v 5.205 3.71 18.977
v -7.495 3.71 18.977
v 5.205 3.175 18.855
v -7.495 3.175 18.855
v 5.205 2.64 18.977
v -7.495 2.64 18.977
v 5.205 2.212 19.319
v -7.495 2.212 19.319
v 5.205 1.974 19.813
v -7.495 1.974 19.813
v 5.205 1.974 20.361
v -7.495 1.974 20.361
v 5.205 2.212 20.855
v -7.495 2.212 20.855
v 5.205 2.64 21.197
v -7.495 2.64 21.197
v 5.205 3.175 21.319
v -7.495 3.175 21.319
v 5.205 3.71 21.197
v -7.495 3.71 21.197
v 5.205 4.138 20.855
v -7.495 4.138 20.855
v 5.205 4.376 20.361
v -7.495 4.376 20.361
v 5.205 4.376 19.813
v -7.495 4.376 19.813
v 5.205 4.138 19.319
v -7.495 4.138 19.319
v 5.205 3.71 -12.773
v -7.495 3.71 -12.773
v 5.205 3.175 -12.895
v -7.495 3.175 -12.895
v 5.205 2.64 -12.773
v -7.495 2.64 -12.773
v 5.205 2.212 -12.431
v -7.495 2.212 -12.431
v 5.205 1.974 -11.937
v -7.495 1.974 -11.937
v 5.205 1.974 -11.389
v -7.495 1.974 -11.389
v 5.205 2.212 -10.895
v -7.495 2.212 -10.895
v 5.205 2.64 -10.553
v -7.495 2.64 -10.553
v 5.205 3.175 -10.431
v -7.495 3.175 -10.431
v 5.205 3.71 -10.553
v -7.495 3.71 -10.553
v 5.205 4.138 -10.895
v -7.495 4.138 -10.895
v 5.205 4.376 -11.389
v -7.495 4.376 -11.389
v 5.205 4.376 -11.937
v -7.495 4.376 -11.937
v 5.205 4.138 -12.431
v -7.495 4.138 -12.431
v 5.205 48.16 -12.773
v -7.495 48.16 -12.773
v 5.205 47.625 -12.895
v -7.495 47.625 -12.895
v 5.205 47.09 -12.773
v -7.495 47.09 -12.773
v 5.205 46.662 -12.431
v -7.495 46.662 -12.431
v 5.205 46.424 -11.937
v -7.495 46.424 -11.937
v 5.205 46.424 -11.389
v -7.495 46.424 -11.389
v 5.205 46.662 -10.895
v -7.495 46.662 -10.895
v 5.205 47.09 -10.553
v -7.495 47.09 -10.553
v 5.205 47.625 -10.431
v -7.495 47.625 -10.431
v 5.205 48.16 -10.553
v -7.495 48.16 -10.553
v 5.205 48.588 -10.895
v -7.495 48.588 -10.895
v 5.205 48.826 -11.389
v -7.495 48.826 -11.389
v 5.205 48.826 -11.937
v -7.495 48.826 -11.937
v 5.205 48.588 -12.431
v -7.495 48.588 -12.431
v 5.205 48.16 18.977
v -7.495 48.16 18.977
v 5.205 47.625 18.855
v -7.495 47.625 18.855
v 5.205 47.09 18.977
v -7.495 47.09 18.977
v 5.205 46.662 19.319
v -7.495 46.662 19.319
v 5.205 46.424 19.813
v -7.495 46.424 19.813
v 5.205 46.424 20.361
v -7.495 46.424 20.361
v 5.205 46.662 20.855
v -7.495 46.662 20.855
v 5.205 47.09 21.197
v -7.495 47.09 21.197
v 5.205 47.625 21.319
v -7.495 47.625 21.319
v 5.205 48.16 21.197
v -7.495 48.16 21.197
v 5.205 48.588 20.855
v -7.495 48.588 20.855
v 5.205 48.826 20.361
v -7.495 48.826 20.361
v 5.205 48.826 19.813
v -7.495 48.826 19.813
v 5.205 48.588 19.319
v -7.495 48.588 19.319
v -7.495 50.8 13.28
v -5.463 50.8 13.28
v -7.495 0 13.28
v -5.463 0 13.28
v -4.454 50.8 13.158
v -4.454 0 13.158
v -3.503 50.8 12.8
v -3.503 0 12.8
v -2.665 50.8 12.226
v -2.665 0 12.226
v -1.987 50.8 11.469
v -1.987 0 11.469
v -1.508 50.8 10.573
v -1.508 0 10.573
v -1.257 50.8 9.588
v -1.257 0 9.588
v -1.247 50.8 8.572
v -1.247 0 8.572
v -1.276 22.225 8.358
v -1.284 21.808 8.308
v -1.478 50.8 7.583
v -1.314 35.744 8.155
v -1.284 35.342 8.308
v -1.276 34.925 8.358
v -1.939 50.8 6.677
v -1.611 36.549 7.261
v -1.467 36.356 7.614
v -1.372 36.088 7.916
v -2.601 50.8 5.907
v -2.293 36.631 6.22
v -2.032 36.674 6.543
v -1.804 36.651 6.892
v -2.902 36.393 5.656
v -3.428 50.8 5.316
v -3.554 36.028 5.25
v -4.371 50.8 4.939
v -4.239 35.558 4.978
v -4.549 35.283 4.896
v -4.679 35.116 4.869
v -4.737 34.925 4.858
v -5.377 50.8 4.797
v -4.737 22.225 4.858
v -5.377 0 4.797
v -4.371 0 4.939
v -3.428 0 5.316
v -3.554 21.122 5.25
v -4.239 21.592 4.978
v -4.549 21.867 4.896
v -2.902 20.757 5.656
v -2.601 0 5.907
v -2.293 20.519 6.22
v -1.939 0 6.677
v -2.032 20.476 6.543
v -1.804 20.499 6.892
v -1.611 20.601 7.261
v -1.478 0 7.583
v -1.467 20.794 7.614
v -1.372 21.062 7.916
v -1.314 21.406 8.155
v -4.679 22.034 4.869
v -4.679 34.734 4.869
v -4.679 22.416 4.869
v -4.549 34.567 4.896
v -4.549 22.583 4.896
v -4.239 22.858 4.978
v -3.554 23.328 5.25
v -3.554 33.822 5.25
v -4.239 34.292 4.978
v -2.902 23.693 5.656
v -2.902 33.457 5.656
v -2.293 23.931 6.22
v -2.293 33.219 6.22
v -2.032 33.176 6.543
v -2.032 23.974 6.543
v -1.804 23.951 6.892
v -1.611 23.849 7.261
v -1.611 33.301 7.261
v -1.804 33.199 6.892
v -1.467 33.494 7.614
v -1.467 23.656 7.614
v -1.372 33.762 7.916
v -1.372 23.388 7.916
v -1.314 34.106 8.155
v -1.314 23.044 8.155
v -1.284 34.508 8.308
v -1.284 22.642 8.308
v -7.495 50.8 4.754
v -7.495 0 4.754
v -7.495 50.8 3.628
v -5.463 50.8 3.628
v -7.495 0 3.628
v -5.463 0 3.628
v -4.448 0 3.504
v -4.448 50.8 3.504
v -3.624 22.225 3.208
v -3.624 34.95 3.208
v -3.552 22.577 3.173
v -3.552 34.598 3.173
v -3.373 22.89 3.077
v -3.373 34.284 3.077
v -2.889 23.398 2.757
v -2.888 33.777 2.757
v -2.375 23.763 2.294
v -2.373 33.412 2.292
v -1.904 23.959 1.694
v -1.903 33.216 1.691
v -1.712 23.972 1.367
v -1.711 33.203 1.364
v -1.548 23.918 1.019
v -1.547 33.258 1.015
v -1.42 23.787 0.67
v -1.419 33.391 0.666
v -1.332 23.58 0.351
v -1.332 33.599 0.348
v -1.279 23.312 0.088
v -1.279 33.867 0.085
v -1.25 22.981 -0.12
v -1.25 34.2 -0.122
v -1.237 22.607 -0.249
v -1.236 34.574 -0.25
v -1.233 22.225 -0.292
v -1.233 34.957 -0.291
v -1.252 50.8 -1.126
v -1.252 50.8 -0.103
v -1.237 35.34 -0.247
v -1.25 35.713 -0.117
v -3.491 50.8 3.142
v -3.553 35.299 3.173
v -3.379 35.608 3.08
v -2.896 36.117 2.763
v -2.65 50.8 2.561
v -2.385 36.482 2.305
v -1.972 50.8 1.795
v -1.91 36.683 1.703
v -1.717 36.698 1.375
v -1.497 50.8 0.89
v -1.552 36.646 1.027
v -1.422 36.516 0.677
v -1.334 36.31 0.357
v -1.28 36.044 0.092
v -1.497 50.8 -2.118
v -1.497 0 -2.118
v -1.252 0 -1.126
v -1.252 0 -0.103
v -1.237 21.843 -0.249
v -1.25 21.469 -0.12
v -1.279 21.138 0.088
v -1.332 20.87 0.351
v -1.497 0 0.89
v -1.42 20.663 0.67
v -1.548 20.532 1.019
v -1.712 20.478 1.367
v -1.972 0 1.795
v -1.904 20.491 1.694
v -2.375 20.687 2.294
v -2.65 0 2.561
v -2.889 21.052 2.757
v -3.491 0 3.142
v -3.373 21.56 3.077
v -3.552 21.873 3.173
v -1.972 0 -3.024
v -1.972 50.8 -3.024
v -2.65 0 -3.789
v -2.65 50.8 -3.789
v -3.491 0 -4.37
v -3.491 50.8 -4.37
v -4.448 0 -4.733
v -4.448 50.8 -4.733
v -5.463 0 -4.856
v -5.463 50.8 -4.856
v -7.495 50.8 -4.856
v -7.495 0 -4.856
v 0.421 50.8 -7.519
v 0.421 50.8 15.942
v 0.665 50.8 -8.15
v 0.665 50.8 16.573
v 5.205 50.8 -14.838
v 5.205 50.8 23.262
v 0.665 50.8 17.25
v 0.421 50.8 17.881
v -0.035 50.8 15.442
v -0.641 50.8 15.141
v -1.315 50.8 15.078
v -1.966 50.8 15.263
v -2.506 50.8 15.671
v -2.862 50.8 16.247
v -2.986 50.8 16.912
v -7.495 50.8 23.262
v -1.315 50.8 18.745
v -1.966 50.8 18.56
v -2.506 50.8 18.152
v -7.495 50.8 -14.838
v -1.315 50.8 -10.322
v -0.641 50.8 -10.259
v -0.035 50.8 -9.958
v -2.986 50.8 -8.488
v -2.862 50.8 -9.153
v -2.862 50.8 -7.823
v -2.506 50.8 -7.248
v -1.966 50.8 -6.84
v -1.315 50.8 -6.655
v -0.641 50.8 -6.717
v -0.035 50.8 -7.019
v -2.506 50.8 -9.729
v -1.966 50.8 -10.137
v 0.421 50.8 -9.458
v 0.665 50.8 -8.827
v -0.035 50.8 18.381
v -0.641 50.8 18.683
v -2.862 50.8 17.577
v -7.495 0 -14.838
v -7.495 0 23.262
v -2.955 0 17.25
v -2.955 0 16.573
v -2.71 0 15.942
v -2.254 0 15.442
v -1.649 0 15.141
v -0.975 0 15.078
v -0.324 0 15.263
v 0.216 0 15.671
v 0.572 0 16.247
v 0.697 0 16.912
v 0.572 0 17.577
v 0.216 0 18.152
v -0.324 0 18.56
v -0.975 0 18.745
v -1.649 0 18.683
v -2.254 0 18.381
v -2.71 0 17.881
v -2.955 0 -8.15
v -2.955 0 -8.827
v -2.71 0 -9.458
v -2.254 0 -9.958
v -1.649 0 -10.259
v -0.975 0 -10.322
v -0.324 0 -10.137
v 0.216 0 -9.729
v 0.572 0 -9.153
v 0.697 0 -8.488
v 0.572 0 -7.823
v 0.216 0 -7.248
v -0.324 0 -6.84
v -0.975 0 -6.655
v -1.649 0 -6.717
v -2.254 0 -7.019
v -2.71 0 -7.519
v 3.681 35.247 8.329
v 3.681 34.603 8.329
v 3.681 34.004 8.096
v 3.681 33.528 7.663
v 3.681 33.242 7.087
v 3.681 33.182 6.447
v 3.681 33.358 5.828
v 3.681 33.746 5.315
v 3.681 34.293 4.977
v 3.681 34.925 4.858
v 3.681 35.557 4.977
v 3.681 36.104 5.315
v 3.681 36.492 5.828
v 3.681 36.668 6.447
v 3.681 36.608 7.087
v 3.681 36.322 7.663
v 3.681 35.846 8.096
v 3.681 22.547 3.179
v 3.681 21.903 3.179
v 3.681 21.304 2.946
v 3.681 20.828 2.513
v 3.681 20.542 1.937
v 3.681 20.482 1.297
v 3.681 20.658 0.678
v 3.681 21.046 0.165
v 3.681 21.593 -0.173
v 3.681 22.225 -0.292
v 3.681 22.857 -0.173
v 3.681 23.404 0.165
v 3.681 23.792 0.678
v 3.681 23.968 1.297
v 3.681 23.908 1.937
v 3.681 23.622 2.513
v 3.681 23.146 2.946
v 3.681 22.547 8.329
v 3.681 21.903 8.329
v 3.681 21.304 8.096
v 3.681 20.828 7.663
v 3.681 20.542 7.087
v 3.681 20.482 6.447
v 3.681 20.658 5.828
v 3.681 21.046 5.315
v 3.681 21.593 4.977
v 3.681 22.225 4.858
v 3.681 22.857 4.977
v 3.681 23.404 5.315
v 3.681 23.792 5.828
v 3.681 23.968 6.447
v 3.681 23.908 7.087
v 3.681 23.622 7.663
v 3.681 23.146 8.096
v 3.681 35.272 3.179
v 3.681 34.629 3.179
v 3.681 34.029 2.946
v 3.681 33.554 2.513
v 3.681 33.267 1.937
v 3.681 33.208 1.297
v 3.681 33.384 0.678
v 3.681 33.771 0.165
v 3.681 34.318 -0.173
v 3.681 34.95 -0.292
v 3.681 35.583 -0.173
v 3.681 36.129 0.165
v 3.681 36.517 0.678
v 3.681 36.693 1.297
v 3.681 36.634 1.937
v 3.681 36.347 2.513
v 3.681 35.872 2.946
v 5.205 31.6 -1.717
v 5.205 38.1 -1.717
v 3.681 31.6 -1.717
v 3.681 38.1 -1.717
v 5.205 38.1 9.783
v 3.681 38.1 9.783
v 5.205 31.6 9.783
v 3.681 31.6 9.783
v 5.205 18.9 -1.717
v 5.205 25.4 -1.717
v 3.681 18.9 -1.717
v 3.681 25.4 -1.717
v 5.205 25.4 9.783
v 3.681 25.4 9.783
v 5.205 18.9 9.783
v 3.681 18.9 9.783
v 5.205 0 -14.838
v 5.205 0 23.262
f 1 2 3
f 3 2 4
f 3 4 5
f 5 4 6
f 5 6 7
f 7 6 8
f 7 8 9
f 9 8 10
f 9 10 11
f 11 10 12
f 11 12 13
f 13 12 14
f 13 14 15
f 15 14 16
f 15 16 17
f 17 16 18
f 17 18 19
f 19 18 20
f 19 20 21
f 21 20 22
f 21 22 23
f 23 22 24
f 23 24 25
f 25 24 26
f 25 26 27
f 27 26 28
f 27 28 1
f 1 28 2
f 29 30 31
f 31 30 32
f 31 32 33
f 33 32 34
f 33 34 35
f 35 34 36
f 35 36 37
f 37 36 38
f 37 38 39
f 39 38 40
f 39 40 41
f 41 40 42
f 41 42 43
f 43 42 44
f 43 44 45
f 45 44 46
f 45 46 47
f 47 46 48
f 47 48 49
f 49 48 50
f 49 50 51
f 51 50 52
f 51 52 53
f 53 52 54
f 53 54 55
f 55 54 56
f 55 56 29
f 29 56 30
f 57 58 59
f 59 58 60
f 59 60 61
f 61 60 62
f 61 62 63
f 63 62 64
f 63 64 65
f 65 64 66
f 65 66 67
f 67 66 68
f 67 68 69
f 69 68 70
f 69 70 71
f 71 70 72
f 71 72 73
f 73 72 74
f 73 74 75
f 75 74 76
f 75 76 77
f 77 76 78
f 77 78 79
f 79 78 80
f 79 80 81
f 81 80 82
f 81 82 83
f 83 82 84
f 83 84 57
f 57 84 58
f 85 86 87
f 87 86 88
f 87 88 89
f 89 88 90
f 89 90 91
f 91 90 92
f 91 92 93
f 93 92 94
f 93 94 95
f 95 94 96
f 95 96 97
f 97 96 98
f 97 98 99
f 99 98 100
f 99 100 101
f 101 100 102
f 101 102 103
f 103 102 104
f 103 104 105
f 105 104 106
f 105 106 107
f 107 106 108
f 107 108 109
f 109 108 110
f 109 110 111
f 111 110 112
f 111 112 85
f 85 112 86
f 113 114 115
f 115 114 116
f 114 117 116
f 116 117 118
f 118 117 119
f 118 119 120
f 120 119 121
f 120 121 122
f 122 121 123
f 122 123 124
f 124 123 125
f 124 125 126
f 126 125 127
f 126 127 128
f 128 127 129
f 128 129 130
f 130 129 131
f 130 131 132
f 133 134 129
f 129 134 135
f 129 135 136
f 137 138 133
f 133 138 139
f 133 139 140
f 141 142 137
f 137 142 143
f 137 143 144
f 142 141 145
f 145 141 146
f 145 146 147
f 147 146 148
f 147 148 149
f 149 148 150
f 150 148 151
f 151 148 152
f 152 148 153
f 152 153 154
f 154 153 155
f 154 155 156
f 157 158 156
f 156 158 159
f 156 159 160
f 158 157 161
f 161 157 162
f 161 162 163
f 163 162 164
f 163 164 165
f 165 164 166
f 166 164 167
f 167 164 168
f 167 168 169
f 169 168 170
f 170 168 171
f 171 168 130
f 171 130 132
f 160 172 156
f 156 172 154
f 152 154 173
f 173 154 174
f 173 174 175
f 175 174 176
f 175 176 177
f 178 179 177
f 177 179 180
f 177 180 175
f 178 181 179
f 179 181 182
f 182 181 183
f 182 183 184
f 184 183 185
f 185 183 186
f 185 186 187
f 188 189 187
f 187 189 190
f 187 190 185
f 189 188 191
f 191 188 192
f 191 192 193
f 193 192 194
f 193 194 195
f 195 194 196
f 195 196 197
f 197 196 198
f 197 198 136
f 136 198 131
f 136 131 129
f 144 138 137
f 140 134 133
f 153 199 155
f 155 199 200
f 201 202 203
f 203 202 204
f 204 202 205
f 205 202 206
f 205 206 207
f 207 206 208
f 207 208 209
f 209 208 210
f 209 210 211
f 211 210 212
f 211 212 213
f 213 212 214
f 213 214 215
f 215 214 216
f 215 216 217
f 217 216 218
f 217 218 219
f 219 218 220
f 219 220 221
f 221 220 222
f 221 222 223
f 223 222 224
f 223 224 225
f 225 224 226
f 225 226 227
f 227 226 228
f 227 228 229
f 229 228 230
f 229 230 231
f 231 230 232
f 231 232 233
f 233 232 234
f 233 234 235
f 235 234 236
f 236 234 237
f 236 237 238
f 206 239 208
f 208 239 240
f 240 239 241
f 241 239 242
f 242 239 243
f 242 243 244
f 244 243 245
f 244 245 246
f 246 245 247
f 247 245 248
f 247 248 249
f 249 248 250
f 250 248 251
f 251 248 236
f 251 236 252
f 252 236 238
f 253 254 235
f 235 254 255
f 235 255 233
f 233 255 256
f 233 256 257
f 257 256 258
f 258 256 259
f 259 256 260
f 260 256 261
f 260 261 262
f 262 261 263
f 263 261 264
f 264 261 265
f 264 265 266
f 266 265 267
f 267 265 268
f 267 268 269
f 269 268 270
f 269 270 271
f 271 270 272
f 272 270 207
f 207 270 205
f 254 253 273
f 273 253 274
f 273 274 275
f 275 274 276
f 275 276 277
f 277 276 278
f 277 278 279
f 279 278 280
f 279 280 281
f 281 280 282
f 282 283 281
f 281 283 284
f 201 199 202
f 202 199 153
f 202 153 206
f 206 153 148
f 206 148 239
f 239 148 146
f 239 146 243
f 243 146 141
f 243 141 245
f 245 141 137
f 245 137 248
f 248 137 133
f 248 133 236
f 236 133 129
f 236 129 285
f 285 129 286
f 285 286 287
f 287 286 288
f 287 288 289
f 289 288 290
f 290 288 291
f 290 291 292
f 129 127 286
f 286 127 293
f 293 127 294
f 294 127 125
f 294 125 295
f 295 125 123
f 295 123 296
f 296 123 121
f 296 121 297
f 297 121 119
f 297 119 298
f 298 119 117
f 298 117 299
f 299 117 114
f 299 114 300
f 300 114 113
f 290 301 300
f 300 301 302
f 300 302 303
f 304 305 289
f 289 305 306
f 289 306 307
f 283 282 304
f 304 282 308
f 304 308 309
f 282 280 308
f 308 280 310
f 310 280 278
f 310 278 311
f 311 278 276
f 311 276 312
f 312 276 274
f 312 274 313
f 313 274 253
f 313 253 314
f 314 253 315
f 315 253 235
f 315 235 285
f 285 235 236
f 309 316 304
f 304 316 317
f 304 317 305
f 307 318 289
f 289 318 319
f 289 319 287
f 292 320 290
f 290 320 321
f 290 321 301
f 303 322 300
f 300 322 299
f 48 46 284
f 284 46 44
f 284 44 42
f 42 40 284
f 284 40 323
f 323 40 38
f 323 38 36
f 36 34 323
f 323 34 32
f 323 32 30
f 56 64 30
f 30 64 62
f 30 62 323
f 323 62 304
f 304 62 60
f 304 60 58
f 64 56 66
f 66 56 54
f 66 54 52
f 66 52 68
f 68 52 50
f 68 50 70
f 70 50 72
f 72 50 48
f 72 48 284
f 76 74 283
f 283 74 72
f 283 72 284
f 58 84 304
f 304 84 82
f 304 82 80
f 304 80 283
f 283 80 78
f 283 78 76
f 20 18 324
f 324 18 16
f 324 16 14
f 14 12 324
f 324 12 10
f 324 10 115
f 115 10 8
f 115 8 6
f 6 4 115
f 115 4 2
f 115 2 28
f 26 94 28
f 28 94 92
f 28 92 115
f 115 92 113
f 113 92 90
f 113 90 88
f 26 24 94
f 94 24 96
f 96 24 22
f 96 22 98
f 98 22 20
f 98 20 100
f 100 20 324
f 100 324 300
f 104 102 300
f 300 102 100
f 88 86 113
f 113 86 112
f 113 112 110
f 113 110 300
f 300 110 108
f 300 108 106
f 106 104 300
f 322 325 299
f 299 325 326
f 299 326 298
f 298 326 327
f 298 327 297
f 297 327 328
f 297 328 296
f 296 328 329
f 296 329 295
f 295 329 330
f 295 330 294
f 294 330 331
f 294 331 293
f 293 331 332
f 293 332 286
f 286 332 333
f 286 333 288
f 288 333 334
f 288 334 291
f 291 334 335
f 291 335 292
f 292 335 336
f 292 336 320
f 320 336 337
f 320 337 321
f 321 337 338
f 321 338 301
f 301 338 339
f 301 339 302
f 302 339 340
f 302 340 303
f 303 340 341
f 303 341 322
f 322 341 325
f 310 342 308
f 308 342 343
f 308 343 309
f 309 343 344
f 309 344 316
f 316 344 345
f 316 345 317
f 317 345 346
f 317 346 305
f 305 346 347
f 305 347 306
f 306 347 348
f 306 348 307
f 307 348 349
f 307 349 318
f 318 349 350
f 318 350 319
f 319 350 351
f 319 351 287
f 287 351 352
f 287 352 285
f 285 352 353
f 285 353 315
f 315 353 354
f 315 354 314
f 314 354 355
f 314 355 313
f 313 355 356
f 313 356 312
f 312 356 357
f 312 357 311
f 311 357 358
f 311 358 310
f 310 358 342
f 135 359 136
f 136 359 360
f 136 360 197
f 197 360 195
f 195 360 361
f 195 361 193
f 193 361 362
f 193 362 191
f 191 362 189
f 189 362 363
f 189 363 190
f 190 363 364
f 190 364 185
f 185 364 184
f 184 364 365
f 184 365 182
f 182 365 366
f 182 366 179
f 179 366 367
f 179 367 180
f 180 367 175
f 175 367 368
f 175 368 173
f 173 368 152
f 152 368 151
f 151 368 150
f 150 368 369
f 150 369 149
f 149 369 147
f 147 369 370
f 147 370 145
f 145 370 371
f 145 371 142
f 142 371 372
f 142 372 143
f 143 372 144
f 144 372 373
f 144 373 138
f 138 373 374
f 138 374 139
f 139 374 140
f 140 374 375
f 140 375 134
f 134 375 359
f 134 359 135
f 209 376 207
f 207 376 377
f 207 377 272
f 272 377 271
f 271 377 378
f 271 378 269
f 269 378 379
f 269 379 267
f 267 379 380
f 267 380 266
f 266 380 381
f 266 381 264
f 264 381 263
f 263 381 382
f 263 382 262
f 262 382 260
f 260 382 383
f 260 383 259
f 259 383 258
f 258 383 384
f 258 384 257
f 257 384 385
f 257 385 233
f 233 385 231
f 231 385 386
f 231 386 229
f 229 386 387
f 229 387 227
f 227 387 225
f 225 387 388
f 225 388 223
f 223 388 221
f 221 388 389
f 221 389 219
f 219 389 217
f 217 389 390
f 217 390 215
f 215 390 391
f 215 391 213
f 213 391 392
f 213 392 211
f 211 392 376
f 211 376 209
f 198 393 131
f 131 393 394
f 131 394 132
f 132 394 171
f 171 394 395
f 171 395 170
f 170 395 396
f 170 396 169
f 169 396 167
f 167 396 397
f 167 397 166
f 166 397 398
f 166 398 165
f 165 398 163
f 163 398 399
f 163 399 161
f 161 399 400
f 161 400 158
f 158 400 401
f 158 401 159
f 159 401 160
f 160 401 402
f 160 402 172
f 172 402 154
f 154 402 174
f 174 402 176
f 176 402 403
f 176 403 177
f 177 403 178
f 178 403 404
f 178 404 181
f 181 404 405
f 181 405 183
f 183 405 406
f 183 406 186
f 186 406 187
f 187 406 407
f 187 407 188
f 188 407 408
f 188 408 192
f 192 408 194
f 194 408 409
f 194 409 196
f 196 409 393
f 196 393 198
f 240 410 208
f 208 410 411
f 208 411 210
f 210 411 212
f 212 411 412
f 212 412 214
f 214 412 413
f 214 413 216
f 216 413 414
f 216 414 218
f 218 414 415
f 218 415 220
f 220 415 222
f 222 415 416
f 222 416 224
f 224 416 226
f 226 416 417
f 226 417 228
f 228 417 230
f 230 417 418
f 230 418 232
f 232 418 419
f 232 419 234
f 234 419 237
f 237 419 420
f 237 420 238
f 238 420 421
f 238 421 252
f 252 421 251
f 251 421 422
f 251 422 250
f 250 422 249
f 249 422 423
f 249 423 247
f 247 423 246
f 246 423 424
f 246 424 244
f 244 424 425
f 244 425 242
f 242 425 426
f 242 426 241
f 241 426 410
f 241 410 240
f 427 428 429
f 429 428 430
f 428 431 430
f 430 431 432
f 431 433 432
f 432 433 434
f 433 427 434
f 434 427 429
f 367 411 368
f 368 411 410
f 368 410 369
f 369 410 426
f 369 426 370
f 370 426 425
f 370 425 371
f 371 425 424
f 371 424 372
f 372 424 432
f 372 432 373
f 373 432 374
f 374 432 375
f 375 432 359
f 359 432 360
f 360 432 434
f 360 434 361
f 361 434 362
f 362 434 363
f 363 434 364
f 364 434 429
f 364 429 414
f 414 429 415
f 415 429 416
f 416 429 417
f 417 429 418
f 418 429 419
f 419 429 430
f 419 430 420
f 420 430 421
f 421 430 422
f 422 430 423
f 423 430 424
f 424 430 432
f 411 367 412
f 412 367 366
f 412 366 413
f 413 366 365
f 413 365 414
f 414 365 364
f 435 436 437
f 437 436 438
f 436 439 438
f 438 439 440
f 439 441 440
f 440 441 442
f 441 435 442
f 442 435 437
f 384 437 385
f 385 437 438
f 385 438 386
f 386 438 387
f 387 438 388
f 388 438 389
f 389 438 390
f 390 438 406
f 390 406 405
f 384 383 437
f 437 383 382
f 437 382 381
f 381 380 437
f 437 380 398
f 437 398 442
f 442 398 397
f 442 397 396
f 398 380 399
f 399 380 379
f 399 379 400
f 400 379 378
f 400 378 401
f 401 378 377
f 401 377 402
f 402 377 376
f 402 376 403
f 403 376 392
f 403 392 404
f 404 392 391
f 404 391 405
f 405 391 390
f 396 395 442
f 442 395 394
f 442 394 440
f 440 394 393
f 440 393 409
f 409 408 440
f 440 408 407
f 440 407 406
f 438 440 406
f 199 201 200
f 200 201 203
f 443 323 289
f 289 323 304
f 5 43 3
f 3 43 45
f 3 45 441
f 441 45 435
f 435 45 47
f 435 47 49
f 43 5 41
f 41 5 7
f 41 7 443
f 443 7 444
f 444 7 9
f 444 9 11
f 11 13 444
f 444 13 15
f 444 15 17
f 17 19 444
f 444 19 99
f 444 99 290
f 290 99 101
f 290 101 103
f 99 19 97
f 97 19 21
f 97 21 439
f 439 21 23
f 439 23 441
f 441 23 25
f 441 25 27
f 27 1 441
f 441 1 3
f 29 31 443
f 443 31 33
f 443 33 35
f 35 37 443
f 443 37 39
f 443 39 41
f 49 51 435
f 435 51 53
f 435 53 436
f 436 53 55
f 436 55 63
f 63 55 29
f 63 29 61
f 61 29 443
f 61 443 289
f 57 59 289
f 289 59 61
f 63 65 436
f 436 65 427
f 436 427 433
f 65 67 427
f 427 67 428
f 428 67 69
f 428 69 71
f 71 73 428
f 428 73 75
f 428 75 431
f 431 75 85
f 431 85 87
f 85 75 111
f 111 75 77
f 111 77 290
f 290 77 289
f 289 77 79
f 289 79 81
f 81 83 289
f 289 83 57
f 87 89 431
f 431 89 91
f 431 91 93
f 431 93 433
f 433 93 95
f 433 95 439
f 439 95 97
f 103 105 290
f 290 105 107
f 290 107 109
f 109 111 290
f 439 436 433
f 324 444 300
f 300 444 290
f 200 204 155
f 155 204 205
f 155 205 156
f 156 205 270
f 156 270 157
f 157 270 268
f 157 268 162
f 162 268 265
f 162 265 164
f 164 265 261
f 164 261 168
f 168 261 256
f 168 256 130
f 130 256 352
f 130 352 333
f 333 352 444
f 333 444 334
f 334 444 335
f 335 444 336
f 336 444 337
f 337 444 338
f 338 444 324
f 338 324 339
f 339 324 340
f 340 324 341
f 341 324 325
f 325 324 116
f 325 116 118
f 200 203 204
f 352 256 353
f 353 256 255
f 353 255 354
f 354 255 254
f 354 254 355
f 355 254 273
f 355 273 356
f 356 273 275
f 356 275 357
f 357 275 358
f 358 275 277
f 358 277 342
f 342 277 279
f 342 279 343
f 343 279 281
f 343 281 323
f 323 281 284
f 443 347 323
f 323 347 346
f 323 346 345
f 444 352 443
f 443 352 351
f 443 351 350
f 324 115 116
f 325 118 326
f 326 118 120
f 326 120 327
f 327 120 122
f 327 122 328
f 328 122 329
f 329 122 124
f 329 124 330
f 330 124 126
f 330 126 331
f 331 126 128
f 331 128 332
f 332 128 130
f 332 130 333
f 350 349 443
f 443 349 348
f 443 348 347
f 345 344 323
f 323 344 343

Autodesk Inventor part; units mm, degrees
ref_plane "YZ Plane" through (0, 0, 0) normal (1, 0, 0) x (0, 1, 0)
ref_plane "XZ Plane" through (0, 0, 0) normal (0, 1, 0) x (-1, 0, 0)
ref_plane "XY Plane" through (0, 0, 0) normal (0, 0, 1) x (1, 0, 0)
sketch "Sketch1" plane through (0, 0, 0) normal (0, 1, 0) x (-1, 0, 0)
  line L0 (7.4947, 23.2617) -> (-5.2053, 23.2617)
  line L1 (-5.2053, 23.2617) -> (-5.2053, -14.8383)
  line L2 (-5.2053, -14.8383) -> (7.4947, -14.8383)
  line L3 (7.4947, -14.8383) -> (7.4947, 23.2617)
  point P0 (0, 0)
  dimension "d0" = 38.1
  dimension "d1" = 12.7
extrude "Extrusion1" add sketch "Sketch1" along normal blind 50.8
sketch "Sketch2" plane through (5.2053, 0, 23.2617) normal (1, 0, 0) x (0, 0, -1)
  line L0 (13.4782, 31.6) -> (24.9782, 31.6)
  line L1 (24.9782, 31.6) -> (24.9782, 38.1)
  line L2 (24.9782, 38.1) -> (13.4782, 38.1)
  line L3 (13.4782, 38.1) -> (13.4782, 31.6)
  line L4 (13.4782, 18.9) -> (24.9782, 18.9)
  line L5 (24.9782, 18.9) -> (24.9782, 25.4)
  line L6 (24.9782, 25.4) -> (13.4782, 25.4)
  line L7 (13.4782, 25.4) -> (13.4782, 18.9)
  line L8 (0, 0) -> (0, 50.8) projected
  line L9 (0, 0) -> (38.1, 0) projected
  line L10 (19.05, 56.7236) -> (19.05, -6.6913)
  point P0 (23.2617, 0)
  dimension "d4" = 11.5
  dimension "d5" = 0
  dimension "d6" = 0
  dimension "d8" = 25.4
  dimension "d9" = 12.7
  dimension "d10" = 6.5
  dimension "d11" = 6.5
  dimension "d47" = 19.05
extrude "Extrusion2" cut sketch "Sketch2" against normal blind 1.524
sketch "Sketch3" plane through (3.6813, 0, 23.2617) normal (1, 0, 0) x (0, 0, -1)
  circle A0 centre (21.8032, 22.225) radius 1.75
  circle A1 centre (16.6532, 22.225) radius 1.75
  line L0 (13.4782, 25.4) -> (24.9782, 25.4) projected
  line L1 (13.4782, 18.9) -> (13.4782, 25.4) projected
  line L2 (24.9782, 25.4) -> (24.9782, 18.9) projected
  circle A2 centre (16.6532, 34.925) radius 1.75
  circle A3 centre (21.8032, 34.9504) radius 1.75
  line L3 (13.4782, 38.1) -> (24.9782, 38.1) projected
  point P0 (23.2617, 0)
  dimension "d15" = 3.5
  dimension "d16" = 3.5
  dimension "d17" = 3.175
  dimension "d18" = 3.175
  dimension "d19" = 3.175
  dimension "d20" = 3.175
  dimension "d21" = 3.5
  dimension "d22" = 3.5
  dimension "d23" = 3.175
  dimension "d24" = 3.1496
  dimension "d48" = 0
  dimension "d49" = 0
extrude "Extrusion3" cut sketch "Sketch3" against normal blind 41.3385
sketch "Sketch4" plane through (0, 0, 0) normal (0, -1, 0) x (1, 0, 0)
  line L0 (5.2053, -14.8383) -> (-7.4947, -14.8383) projected
  line L1 (5.2053, 23.2617) -> (5.2053, -14.8383) projected
  point P0 (0, 0)
  point P1 (-1.1447, 16.9117)
  point P2 (-1.1447, -8.4883)
  dimension "d27" = 25.4
  dimension "d28" = 6.35
  dimension "d29" = 6.35
  dimension "d30" = 0
hole "Hole1" at (-1.1447, 0, 16.9117) at (-1.1447, 0, -8.4883) direction (0, 1, 0) diameter 3.683 end through all thread size "10-24 UNC" class "2B" standard "ANSI Unified Screw Threads"
sketch "Sketch5" plane through (0, 0, 0) normal (0, -1, 0) x (1, 0, 0)
  arc A0 (-5.3775, 4.7968) -> (-5.4627, 13.2795) centre (-5.4627, 9.0377) ccw
  arc A1 (-5.4627, -4.8561) -> (-5.4627, 3.6275) centre (-5.4627, -0.6143) ccw
  line L0 (-7.4947, -14.8383) -> (-7.4947, 23.2617) projected
  line L1 (-7.4947, 23.2617) -> (5.2053, 23.2617) projected
  line L2 (5.2053, -14.8383) -> (-7.4947, -14.8383) projected
  line L3 (-7.4947, -4.8561) -> (-5.4627, -4.8561)
  line L4 (-7.4947, 3.6275) -> (-5.4627, 3.6275)
  line L5 (-7.4947, 4.7542) -> (-5.3775, 4.7968)
  line L6 (-7.4947, 13.2795) -> (-5.4627, 13.2795)
  point P0 (0, 0)
  dimension "d38" = 8.4836
  dimension "d39" = 8.4836
  dimension "d42" = 14.224
  dimension "d43" = 14.224
  dimension "d50" = 0
  dimension "d51" = 2.032
  dimension "d67" = 4.2418
  dimension "d68" = 4.2418
  dimension "d69" = 4.2418
  dimension "d70" = 4.2418
extrude "Extrusion4" cut sketch "Sketch5" against normal blind 76.2
sketch "Sketch7" plane through (-7.4947, 0, 23.2617) normal (-1, 0, 0) x (0, 0, 1)
  line L0 (-38.1, 0) -> (-38.1, 50.8) projected
  line L1 (-38.1, 0) -> (-28.1178, 0) projected
  line L2 (-38.1, 50.8) -> (-28.1178, 50.8) projected
  line L3 (0, 0) -> (0, 50.8) projected
  point P0 (-23.2617, 0)
  point P1 (-34.925, 3.175)
  point P2 (-34.925, 47.625)
  point P3 (-27.821, 0)
  point P4 (-27.821, 50.8)
  point P5 (-3.175, 3.175)
  point P6 (-3.175, 47.625)
  dimension "d52" = 0
  dimension "d53" = 3.175
  dimension "d54" = 3.175
  dimension "d55" = 3.175
  dimension "d56" = 0
  dimension "d57" = 3.175
  dimension "d58" = 0
  dimension "d59" = 0
hole "Hole2" at (-7.4947, 3.175, -11.6633) at (-7.4947, 47.625, -11.6633) at (-7.4947, 3.175, 20.0867) at (-7.4947, 47.625, 20.0867) direction (1, 0, 0) diameter 2.4638 end through all
properties part number "PowerPlugBlock"
